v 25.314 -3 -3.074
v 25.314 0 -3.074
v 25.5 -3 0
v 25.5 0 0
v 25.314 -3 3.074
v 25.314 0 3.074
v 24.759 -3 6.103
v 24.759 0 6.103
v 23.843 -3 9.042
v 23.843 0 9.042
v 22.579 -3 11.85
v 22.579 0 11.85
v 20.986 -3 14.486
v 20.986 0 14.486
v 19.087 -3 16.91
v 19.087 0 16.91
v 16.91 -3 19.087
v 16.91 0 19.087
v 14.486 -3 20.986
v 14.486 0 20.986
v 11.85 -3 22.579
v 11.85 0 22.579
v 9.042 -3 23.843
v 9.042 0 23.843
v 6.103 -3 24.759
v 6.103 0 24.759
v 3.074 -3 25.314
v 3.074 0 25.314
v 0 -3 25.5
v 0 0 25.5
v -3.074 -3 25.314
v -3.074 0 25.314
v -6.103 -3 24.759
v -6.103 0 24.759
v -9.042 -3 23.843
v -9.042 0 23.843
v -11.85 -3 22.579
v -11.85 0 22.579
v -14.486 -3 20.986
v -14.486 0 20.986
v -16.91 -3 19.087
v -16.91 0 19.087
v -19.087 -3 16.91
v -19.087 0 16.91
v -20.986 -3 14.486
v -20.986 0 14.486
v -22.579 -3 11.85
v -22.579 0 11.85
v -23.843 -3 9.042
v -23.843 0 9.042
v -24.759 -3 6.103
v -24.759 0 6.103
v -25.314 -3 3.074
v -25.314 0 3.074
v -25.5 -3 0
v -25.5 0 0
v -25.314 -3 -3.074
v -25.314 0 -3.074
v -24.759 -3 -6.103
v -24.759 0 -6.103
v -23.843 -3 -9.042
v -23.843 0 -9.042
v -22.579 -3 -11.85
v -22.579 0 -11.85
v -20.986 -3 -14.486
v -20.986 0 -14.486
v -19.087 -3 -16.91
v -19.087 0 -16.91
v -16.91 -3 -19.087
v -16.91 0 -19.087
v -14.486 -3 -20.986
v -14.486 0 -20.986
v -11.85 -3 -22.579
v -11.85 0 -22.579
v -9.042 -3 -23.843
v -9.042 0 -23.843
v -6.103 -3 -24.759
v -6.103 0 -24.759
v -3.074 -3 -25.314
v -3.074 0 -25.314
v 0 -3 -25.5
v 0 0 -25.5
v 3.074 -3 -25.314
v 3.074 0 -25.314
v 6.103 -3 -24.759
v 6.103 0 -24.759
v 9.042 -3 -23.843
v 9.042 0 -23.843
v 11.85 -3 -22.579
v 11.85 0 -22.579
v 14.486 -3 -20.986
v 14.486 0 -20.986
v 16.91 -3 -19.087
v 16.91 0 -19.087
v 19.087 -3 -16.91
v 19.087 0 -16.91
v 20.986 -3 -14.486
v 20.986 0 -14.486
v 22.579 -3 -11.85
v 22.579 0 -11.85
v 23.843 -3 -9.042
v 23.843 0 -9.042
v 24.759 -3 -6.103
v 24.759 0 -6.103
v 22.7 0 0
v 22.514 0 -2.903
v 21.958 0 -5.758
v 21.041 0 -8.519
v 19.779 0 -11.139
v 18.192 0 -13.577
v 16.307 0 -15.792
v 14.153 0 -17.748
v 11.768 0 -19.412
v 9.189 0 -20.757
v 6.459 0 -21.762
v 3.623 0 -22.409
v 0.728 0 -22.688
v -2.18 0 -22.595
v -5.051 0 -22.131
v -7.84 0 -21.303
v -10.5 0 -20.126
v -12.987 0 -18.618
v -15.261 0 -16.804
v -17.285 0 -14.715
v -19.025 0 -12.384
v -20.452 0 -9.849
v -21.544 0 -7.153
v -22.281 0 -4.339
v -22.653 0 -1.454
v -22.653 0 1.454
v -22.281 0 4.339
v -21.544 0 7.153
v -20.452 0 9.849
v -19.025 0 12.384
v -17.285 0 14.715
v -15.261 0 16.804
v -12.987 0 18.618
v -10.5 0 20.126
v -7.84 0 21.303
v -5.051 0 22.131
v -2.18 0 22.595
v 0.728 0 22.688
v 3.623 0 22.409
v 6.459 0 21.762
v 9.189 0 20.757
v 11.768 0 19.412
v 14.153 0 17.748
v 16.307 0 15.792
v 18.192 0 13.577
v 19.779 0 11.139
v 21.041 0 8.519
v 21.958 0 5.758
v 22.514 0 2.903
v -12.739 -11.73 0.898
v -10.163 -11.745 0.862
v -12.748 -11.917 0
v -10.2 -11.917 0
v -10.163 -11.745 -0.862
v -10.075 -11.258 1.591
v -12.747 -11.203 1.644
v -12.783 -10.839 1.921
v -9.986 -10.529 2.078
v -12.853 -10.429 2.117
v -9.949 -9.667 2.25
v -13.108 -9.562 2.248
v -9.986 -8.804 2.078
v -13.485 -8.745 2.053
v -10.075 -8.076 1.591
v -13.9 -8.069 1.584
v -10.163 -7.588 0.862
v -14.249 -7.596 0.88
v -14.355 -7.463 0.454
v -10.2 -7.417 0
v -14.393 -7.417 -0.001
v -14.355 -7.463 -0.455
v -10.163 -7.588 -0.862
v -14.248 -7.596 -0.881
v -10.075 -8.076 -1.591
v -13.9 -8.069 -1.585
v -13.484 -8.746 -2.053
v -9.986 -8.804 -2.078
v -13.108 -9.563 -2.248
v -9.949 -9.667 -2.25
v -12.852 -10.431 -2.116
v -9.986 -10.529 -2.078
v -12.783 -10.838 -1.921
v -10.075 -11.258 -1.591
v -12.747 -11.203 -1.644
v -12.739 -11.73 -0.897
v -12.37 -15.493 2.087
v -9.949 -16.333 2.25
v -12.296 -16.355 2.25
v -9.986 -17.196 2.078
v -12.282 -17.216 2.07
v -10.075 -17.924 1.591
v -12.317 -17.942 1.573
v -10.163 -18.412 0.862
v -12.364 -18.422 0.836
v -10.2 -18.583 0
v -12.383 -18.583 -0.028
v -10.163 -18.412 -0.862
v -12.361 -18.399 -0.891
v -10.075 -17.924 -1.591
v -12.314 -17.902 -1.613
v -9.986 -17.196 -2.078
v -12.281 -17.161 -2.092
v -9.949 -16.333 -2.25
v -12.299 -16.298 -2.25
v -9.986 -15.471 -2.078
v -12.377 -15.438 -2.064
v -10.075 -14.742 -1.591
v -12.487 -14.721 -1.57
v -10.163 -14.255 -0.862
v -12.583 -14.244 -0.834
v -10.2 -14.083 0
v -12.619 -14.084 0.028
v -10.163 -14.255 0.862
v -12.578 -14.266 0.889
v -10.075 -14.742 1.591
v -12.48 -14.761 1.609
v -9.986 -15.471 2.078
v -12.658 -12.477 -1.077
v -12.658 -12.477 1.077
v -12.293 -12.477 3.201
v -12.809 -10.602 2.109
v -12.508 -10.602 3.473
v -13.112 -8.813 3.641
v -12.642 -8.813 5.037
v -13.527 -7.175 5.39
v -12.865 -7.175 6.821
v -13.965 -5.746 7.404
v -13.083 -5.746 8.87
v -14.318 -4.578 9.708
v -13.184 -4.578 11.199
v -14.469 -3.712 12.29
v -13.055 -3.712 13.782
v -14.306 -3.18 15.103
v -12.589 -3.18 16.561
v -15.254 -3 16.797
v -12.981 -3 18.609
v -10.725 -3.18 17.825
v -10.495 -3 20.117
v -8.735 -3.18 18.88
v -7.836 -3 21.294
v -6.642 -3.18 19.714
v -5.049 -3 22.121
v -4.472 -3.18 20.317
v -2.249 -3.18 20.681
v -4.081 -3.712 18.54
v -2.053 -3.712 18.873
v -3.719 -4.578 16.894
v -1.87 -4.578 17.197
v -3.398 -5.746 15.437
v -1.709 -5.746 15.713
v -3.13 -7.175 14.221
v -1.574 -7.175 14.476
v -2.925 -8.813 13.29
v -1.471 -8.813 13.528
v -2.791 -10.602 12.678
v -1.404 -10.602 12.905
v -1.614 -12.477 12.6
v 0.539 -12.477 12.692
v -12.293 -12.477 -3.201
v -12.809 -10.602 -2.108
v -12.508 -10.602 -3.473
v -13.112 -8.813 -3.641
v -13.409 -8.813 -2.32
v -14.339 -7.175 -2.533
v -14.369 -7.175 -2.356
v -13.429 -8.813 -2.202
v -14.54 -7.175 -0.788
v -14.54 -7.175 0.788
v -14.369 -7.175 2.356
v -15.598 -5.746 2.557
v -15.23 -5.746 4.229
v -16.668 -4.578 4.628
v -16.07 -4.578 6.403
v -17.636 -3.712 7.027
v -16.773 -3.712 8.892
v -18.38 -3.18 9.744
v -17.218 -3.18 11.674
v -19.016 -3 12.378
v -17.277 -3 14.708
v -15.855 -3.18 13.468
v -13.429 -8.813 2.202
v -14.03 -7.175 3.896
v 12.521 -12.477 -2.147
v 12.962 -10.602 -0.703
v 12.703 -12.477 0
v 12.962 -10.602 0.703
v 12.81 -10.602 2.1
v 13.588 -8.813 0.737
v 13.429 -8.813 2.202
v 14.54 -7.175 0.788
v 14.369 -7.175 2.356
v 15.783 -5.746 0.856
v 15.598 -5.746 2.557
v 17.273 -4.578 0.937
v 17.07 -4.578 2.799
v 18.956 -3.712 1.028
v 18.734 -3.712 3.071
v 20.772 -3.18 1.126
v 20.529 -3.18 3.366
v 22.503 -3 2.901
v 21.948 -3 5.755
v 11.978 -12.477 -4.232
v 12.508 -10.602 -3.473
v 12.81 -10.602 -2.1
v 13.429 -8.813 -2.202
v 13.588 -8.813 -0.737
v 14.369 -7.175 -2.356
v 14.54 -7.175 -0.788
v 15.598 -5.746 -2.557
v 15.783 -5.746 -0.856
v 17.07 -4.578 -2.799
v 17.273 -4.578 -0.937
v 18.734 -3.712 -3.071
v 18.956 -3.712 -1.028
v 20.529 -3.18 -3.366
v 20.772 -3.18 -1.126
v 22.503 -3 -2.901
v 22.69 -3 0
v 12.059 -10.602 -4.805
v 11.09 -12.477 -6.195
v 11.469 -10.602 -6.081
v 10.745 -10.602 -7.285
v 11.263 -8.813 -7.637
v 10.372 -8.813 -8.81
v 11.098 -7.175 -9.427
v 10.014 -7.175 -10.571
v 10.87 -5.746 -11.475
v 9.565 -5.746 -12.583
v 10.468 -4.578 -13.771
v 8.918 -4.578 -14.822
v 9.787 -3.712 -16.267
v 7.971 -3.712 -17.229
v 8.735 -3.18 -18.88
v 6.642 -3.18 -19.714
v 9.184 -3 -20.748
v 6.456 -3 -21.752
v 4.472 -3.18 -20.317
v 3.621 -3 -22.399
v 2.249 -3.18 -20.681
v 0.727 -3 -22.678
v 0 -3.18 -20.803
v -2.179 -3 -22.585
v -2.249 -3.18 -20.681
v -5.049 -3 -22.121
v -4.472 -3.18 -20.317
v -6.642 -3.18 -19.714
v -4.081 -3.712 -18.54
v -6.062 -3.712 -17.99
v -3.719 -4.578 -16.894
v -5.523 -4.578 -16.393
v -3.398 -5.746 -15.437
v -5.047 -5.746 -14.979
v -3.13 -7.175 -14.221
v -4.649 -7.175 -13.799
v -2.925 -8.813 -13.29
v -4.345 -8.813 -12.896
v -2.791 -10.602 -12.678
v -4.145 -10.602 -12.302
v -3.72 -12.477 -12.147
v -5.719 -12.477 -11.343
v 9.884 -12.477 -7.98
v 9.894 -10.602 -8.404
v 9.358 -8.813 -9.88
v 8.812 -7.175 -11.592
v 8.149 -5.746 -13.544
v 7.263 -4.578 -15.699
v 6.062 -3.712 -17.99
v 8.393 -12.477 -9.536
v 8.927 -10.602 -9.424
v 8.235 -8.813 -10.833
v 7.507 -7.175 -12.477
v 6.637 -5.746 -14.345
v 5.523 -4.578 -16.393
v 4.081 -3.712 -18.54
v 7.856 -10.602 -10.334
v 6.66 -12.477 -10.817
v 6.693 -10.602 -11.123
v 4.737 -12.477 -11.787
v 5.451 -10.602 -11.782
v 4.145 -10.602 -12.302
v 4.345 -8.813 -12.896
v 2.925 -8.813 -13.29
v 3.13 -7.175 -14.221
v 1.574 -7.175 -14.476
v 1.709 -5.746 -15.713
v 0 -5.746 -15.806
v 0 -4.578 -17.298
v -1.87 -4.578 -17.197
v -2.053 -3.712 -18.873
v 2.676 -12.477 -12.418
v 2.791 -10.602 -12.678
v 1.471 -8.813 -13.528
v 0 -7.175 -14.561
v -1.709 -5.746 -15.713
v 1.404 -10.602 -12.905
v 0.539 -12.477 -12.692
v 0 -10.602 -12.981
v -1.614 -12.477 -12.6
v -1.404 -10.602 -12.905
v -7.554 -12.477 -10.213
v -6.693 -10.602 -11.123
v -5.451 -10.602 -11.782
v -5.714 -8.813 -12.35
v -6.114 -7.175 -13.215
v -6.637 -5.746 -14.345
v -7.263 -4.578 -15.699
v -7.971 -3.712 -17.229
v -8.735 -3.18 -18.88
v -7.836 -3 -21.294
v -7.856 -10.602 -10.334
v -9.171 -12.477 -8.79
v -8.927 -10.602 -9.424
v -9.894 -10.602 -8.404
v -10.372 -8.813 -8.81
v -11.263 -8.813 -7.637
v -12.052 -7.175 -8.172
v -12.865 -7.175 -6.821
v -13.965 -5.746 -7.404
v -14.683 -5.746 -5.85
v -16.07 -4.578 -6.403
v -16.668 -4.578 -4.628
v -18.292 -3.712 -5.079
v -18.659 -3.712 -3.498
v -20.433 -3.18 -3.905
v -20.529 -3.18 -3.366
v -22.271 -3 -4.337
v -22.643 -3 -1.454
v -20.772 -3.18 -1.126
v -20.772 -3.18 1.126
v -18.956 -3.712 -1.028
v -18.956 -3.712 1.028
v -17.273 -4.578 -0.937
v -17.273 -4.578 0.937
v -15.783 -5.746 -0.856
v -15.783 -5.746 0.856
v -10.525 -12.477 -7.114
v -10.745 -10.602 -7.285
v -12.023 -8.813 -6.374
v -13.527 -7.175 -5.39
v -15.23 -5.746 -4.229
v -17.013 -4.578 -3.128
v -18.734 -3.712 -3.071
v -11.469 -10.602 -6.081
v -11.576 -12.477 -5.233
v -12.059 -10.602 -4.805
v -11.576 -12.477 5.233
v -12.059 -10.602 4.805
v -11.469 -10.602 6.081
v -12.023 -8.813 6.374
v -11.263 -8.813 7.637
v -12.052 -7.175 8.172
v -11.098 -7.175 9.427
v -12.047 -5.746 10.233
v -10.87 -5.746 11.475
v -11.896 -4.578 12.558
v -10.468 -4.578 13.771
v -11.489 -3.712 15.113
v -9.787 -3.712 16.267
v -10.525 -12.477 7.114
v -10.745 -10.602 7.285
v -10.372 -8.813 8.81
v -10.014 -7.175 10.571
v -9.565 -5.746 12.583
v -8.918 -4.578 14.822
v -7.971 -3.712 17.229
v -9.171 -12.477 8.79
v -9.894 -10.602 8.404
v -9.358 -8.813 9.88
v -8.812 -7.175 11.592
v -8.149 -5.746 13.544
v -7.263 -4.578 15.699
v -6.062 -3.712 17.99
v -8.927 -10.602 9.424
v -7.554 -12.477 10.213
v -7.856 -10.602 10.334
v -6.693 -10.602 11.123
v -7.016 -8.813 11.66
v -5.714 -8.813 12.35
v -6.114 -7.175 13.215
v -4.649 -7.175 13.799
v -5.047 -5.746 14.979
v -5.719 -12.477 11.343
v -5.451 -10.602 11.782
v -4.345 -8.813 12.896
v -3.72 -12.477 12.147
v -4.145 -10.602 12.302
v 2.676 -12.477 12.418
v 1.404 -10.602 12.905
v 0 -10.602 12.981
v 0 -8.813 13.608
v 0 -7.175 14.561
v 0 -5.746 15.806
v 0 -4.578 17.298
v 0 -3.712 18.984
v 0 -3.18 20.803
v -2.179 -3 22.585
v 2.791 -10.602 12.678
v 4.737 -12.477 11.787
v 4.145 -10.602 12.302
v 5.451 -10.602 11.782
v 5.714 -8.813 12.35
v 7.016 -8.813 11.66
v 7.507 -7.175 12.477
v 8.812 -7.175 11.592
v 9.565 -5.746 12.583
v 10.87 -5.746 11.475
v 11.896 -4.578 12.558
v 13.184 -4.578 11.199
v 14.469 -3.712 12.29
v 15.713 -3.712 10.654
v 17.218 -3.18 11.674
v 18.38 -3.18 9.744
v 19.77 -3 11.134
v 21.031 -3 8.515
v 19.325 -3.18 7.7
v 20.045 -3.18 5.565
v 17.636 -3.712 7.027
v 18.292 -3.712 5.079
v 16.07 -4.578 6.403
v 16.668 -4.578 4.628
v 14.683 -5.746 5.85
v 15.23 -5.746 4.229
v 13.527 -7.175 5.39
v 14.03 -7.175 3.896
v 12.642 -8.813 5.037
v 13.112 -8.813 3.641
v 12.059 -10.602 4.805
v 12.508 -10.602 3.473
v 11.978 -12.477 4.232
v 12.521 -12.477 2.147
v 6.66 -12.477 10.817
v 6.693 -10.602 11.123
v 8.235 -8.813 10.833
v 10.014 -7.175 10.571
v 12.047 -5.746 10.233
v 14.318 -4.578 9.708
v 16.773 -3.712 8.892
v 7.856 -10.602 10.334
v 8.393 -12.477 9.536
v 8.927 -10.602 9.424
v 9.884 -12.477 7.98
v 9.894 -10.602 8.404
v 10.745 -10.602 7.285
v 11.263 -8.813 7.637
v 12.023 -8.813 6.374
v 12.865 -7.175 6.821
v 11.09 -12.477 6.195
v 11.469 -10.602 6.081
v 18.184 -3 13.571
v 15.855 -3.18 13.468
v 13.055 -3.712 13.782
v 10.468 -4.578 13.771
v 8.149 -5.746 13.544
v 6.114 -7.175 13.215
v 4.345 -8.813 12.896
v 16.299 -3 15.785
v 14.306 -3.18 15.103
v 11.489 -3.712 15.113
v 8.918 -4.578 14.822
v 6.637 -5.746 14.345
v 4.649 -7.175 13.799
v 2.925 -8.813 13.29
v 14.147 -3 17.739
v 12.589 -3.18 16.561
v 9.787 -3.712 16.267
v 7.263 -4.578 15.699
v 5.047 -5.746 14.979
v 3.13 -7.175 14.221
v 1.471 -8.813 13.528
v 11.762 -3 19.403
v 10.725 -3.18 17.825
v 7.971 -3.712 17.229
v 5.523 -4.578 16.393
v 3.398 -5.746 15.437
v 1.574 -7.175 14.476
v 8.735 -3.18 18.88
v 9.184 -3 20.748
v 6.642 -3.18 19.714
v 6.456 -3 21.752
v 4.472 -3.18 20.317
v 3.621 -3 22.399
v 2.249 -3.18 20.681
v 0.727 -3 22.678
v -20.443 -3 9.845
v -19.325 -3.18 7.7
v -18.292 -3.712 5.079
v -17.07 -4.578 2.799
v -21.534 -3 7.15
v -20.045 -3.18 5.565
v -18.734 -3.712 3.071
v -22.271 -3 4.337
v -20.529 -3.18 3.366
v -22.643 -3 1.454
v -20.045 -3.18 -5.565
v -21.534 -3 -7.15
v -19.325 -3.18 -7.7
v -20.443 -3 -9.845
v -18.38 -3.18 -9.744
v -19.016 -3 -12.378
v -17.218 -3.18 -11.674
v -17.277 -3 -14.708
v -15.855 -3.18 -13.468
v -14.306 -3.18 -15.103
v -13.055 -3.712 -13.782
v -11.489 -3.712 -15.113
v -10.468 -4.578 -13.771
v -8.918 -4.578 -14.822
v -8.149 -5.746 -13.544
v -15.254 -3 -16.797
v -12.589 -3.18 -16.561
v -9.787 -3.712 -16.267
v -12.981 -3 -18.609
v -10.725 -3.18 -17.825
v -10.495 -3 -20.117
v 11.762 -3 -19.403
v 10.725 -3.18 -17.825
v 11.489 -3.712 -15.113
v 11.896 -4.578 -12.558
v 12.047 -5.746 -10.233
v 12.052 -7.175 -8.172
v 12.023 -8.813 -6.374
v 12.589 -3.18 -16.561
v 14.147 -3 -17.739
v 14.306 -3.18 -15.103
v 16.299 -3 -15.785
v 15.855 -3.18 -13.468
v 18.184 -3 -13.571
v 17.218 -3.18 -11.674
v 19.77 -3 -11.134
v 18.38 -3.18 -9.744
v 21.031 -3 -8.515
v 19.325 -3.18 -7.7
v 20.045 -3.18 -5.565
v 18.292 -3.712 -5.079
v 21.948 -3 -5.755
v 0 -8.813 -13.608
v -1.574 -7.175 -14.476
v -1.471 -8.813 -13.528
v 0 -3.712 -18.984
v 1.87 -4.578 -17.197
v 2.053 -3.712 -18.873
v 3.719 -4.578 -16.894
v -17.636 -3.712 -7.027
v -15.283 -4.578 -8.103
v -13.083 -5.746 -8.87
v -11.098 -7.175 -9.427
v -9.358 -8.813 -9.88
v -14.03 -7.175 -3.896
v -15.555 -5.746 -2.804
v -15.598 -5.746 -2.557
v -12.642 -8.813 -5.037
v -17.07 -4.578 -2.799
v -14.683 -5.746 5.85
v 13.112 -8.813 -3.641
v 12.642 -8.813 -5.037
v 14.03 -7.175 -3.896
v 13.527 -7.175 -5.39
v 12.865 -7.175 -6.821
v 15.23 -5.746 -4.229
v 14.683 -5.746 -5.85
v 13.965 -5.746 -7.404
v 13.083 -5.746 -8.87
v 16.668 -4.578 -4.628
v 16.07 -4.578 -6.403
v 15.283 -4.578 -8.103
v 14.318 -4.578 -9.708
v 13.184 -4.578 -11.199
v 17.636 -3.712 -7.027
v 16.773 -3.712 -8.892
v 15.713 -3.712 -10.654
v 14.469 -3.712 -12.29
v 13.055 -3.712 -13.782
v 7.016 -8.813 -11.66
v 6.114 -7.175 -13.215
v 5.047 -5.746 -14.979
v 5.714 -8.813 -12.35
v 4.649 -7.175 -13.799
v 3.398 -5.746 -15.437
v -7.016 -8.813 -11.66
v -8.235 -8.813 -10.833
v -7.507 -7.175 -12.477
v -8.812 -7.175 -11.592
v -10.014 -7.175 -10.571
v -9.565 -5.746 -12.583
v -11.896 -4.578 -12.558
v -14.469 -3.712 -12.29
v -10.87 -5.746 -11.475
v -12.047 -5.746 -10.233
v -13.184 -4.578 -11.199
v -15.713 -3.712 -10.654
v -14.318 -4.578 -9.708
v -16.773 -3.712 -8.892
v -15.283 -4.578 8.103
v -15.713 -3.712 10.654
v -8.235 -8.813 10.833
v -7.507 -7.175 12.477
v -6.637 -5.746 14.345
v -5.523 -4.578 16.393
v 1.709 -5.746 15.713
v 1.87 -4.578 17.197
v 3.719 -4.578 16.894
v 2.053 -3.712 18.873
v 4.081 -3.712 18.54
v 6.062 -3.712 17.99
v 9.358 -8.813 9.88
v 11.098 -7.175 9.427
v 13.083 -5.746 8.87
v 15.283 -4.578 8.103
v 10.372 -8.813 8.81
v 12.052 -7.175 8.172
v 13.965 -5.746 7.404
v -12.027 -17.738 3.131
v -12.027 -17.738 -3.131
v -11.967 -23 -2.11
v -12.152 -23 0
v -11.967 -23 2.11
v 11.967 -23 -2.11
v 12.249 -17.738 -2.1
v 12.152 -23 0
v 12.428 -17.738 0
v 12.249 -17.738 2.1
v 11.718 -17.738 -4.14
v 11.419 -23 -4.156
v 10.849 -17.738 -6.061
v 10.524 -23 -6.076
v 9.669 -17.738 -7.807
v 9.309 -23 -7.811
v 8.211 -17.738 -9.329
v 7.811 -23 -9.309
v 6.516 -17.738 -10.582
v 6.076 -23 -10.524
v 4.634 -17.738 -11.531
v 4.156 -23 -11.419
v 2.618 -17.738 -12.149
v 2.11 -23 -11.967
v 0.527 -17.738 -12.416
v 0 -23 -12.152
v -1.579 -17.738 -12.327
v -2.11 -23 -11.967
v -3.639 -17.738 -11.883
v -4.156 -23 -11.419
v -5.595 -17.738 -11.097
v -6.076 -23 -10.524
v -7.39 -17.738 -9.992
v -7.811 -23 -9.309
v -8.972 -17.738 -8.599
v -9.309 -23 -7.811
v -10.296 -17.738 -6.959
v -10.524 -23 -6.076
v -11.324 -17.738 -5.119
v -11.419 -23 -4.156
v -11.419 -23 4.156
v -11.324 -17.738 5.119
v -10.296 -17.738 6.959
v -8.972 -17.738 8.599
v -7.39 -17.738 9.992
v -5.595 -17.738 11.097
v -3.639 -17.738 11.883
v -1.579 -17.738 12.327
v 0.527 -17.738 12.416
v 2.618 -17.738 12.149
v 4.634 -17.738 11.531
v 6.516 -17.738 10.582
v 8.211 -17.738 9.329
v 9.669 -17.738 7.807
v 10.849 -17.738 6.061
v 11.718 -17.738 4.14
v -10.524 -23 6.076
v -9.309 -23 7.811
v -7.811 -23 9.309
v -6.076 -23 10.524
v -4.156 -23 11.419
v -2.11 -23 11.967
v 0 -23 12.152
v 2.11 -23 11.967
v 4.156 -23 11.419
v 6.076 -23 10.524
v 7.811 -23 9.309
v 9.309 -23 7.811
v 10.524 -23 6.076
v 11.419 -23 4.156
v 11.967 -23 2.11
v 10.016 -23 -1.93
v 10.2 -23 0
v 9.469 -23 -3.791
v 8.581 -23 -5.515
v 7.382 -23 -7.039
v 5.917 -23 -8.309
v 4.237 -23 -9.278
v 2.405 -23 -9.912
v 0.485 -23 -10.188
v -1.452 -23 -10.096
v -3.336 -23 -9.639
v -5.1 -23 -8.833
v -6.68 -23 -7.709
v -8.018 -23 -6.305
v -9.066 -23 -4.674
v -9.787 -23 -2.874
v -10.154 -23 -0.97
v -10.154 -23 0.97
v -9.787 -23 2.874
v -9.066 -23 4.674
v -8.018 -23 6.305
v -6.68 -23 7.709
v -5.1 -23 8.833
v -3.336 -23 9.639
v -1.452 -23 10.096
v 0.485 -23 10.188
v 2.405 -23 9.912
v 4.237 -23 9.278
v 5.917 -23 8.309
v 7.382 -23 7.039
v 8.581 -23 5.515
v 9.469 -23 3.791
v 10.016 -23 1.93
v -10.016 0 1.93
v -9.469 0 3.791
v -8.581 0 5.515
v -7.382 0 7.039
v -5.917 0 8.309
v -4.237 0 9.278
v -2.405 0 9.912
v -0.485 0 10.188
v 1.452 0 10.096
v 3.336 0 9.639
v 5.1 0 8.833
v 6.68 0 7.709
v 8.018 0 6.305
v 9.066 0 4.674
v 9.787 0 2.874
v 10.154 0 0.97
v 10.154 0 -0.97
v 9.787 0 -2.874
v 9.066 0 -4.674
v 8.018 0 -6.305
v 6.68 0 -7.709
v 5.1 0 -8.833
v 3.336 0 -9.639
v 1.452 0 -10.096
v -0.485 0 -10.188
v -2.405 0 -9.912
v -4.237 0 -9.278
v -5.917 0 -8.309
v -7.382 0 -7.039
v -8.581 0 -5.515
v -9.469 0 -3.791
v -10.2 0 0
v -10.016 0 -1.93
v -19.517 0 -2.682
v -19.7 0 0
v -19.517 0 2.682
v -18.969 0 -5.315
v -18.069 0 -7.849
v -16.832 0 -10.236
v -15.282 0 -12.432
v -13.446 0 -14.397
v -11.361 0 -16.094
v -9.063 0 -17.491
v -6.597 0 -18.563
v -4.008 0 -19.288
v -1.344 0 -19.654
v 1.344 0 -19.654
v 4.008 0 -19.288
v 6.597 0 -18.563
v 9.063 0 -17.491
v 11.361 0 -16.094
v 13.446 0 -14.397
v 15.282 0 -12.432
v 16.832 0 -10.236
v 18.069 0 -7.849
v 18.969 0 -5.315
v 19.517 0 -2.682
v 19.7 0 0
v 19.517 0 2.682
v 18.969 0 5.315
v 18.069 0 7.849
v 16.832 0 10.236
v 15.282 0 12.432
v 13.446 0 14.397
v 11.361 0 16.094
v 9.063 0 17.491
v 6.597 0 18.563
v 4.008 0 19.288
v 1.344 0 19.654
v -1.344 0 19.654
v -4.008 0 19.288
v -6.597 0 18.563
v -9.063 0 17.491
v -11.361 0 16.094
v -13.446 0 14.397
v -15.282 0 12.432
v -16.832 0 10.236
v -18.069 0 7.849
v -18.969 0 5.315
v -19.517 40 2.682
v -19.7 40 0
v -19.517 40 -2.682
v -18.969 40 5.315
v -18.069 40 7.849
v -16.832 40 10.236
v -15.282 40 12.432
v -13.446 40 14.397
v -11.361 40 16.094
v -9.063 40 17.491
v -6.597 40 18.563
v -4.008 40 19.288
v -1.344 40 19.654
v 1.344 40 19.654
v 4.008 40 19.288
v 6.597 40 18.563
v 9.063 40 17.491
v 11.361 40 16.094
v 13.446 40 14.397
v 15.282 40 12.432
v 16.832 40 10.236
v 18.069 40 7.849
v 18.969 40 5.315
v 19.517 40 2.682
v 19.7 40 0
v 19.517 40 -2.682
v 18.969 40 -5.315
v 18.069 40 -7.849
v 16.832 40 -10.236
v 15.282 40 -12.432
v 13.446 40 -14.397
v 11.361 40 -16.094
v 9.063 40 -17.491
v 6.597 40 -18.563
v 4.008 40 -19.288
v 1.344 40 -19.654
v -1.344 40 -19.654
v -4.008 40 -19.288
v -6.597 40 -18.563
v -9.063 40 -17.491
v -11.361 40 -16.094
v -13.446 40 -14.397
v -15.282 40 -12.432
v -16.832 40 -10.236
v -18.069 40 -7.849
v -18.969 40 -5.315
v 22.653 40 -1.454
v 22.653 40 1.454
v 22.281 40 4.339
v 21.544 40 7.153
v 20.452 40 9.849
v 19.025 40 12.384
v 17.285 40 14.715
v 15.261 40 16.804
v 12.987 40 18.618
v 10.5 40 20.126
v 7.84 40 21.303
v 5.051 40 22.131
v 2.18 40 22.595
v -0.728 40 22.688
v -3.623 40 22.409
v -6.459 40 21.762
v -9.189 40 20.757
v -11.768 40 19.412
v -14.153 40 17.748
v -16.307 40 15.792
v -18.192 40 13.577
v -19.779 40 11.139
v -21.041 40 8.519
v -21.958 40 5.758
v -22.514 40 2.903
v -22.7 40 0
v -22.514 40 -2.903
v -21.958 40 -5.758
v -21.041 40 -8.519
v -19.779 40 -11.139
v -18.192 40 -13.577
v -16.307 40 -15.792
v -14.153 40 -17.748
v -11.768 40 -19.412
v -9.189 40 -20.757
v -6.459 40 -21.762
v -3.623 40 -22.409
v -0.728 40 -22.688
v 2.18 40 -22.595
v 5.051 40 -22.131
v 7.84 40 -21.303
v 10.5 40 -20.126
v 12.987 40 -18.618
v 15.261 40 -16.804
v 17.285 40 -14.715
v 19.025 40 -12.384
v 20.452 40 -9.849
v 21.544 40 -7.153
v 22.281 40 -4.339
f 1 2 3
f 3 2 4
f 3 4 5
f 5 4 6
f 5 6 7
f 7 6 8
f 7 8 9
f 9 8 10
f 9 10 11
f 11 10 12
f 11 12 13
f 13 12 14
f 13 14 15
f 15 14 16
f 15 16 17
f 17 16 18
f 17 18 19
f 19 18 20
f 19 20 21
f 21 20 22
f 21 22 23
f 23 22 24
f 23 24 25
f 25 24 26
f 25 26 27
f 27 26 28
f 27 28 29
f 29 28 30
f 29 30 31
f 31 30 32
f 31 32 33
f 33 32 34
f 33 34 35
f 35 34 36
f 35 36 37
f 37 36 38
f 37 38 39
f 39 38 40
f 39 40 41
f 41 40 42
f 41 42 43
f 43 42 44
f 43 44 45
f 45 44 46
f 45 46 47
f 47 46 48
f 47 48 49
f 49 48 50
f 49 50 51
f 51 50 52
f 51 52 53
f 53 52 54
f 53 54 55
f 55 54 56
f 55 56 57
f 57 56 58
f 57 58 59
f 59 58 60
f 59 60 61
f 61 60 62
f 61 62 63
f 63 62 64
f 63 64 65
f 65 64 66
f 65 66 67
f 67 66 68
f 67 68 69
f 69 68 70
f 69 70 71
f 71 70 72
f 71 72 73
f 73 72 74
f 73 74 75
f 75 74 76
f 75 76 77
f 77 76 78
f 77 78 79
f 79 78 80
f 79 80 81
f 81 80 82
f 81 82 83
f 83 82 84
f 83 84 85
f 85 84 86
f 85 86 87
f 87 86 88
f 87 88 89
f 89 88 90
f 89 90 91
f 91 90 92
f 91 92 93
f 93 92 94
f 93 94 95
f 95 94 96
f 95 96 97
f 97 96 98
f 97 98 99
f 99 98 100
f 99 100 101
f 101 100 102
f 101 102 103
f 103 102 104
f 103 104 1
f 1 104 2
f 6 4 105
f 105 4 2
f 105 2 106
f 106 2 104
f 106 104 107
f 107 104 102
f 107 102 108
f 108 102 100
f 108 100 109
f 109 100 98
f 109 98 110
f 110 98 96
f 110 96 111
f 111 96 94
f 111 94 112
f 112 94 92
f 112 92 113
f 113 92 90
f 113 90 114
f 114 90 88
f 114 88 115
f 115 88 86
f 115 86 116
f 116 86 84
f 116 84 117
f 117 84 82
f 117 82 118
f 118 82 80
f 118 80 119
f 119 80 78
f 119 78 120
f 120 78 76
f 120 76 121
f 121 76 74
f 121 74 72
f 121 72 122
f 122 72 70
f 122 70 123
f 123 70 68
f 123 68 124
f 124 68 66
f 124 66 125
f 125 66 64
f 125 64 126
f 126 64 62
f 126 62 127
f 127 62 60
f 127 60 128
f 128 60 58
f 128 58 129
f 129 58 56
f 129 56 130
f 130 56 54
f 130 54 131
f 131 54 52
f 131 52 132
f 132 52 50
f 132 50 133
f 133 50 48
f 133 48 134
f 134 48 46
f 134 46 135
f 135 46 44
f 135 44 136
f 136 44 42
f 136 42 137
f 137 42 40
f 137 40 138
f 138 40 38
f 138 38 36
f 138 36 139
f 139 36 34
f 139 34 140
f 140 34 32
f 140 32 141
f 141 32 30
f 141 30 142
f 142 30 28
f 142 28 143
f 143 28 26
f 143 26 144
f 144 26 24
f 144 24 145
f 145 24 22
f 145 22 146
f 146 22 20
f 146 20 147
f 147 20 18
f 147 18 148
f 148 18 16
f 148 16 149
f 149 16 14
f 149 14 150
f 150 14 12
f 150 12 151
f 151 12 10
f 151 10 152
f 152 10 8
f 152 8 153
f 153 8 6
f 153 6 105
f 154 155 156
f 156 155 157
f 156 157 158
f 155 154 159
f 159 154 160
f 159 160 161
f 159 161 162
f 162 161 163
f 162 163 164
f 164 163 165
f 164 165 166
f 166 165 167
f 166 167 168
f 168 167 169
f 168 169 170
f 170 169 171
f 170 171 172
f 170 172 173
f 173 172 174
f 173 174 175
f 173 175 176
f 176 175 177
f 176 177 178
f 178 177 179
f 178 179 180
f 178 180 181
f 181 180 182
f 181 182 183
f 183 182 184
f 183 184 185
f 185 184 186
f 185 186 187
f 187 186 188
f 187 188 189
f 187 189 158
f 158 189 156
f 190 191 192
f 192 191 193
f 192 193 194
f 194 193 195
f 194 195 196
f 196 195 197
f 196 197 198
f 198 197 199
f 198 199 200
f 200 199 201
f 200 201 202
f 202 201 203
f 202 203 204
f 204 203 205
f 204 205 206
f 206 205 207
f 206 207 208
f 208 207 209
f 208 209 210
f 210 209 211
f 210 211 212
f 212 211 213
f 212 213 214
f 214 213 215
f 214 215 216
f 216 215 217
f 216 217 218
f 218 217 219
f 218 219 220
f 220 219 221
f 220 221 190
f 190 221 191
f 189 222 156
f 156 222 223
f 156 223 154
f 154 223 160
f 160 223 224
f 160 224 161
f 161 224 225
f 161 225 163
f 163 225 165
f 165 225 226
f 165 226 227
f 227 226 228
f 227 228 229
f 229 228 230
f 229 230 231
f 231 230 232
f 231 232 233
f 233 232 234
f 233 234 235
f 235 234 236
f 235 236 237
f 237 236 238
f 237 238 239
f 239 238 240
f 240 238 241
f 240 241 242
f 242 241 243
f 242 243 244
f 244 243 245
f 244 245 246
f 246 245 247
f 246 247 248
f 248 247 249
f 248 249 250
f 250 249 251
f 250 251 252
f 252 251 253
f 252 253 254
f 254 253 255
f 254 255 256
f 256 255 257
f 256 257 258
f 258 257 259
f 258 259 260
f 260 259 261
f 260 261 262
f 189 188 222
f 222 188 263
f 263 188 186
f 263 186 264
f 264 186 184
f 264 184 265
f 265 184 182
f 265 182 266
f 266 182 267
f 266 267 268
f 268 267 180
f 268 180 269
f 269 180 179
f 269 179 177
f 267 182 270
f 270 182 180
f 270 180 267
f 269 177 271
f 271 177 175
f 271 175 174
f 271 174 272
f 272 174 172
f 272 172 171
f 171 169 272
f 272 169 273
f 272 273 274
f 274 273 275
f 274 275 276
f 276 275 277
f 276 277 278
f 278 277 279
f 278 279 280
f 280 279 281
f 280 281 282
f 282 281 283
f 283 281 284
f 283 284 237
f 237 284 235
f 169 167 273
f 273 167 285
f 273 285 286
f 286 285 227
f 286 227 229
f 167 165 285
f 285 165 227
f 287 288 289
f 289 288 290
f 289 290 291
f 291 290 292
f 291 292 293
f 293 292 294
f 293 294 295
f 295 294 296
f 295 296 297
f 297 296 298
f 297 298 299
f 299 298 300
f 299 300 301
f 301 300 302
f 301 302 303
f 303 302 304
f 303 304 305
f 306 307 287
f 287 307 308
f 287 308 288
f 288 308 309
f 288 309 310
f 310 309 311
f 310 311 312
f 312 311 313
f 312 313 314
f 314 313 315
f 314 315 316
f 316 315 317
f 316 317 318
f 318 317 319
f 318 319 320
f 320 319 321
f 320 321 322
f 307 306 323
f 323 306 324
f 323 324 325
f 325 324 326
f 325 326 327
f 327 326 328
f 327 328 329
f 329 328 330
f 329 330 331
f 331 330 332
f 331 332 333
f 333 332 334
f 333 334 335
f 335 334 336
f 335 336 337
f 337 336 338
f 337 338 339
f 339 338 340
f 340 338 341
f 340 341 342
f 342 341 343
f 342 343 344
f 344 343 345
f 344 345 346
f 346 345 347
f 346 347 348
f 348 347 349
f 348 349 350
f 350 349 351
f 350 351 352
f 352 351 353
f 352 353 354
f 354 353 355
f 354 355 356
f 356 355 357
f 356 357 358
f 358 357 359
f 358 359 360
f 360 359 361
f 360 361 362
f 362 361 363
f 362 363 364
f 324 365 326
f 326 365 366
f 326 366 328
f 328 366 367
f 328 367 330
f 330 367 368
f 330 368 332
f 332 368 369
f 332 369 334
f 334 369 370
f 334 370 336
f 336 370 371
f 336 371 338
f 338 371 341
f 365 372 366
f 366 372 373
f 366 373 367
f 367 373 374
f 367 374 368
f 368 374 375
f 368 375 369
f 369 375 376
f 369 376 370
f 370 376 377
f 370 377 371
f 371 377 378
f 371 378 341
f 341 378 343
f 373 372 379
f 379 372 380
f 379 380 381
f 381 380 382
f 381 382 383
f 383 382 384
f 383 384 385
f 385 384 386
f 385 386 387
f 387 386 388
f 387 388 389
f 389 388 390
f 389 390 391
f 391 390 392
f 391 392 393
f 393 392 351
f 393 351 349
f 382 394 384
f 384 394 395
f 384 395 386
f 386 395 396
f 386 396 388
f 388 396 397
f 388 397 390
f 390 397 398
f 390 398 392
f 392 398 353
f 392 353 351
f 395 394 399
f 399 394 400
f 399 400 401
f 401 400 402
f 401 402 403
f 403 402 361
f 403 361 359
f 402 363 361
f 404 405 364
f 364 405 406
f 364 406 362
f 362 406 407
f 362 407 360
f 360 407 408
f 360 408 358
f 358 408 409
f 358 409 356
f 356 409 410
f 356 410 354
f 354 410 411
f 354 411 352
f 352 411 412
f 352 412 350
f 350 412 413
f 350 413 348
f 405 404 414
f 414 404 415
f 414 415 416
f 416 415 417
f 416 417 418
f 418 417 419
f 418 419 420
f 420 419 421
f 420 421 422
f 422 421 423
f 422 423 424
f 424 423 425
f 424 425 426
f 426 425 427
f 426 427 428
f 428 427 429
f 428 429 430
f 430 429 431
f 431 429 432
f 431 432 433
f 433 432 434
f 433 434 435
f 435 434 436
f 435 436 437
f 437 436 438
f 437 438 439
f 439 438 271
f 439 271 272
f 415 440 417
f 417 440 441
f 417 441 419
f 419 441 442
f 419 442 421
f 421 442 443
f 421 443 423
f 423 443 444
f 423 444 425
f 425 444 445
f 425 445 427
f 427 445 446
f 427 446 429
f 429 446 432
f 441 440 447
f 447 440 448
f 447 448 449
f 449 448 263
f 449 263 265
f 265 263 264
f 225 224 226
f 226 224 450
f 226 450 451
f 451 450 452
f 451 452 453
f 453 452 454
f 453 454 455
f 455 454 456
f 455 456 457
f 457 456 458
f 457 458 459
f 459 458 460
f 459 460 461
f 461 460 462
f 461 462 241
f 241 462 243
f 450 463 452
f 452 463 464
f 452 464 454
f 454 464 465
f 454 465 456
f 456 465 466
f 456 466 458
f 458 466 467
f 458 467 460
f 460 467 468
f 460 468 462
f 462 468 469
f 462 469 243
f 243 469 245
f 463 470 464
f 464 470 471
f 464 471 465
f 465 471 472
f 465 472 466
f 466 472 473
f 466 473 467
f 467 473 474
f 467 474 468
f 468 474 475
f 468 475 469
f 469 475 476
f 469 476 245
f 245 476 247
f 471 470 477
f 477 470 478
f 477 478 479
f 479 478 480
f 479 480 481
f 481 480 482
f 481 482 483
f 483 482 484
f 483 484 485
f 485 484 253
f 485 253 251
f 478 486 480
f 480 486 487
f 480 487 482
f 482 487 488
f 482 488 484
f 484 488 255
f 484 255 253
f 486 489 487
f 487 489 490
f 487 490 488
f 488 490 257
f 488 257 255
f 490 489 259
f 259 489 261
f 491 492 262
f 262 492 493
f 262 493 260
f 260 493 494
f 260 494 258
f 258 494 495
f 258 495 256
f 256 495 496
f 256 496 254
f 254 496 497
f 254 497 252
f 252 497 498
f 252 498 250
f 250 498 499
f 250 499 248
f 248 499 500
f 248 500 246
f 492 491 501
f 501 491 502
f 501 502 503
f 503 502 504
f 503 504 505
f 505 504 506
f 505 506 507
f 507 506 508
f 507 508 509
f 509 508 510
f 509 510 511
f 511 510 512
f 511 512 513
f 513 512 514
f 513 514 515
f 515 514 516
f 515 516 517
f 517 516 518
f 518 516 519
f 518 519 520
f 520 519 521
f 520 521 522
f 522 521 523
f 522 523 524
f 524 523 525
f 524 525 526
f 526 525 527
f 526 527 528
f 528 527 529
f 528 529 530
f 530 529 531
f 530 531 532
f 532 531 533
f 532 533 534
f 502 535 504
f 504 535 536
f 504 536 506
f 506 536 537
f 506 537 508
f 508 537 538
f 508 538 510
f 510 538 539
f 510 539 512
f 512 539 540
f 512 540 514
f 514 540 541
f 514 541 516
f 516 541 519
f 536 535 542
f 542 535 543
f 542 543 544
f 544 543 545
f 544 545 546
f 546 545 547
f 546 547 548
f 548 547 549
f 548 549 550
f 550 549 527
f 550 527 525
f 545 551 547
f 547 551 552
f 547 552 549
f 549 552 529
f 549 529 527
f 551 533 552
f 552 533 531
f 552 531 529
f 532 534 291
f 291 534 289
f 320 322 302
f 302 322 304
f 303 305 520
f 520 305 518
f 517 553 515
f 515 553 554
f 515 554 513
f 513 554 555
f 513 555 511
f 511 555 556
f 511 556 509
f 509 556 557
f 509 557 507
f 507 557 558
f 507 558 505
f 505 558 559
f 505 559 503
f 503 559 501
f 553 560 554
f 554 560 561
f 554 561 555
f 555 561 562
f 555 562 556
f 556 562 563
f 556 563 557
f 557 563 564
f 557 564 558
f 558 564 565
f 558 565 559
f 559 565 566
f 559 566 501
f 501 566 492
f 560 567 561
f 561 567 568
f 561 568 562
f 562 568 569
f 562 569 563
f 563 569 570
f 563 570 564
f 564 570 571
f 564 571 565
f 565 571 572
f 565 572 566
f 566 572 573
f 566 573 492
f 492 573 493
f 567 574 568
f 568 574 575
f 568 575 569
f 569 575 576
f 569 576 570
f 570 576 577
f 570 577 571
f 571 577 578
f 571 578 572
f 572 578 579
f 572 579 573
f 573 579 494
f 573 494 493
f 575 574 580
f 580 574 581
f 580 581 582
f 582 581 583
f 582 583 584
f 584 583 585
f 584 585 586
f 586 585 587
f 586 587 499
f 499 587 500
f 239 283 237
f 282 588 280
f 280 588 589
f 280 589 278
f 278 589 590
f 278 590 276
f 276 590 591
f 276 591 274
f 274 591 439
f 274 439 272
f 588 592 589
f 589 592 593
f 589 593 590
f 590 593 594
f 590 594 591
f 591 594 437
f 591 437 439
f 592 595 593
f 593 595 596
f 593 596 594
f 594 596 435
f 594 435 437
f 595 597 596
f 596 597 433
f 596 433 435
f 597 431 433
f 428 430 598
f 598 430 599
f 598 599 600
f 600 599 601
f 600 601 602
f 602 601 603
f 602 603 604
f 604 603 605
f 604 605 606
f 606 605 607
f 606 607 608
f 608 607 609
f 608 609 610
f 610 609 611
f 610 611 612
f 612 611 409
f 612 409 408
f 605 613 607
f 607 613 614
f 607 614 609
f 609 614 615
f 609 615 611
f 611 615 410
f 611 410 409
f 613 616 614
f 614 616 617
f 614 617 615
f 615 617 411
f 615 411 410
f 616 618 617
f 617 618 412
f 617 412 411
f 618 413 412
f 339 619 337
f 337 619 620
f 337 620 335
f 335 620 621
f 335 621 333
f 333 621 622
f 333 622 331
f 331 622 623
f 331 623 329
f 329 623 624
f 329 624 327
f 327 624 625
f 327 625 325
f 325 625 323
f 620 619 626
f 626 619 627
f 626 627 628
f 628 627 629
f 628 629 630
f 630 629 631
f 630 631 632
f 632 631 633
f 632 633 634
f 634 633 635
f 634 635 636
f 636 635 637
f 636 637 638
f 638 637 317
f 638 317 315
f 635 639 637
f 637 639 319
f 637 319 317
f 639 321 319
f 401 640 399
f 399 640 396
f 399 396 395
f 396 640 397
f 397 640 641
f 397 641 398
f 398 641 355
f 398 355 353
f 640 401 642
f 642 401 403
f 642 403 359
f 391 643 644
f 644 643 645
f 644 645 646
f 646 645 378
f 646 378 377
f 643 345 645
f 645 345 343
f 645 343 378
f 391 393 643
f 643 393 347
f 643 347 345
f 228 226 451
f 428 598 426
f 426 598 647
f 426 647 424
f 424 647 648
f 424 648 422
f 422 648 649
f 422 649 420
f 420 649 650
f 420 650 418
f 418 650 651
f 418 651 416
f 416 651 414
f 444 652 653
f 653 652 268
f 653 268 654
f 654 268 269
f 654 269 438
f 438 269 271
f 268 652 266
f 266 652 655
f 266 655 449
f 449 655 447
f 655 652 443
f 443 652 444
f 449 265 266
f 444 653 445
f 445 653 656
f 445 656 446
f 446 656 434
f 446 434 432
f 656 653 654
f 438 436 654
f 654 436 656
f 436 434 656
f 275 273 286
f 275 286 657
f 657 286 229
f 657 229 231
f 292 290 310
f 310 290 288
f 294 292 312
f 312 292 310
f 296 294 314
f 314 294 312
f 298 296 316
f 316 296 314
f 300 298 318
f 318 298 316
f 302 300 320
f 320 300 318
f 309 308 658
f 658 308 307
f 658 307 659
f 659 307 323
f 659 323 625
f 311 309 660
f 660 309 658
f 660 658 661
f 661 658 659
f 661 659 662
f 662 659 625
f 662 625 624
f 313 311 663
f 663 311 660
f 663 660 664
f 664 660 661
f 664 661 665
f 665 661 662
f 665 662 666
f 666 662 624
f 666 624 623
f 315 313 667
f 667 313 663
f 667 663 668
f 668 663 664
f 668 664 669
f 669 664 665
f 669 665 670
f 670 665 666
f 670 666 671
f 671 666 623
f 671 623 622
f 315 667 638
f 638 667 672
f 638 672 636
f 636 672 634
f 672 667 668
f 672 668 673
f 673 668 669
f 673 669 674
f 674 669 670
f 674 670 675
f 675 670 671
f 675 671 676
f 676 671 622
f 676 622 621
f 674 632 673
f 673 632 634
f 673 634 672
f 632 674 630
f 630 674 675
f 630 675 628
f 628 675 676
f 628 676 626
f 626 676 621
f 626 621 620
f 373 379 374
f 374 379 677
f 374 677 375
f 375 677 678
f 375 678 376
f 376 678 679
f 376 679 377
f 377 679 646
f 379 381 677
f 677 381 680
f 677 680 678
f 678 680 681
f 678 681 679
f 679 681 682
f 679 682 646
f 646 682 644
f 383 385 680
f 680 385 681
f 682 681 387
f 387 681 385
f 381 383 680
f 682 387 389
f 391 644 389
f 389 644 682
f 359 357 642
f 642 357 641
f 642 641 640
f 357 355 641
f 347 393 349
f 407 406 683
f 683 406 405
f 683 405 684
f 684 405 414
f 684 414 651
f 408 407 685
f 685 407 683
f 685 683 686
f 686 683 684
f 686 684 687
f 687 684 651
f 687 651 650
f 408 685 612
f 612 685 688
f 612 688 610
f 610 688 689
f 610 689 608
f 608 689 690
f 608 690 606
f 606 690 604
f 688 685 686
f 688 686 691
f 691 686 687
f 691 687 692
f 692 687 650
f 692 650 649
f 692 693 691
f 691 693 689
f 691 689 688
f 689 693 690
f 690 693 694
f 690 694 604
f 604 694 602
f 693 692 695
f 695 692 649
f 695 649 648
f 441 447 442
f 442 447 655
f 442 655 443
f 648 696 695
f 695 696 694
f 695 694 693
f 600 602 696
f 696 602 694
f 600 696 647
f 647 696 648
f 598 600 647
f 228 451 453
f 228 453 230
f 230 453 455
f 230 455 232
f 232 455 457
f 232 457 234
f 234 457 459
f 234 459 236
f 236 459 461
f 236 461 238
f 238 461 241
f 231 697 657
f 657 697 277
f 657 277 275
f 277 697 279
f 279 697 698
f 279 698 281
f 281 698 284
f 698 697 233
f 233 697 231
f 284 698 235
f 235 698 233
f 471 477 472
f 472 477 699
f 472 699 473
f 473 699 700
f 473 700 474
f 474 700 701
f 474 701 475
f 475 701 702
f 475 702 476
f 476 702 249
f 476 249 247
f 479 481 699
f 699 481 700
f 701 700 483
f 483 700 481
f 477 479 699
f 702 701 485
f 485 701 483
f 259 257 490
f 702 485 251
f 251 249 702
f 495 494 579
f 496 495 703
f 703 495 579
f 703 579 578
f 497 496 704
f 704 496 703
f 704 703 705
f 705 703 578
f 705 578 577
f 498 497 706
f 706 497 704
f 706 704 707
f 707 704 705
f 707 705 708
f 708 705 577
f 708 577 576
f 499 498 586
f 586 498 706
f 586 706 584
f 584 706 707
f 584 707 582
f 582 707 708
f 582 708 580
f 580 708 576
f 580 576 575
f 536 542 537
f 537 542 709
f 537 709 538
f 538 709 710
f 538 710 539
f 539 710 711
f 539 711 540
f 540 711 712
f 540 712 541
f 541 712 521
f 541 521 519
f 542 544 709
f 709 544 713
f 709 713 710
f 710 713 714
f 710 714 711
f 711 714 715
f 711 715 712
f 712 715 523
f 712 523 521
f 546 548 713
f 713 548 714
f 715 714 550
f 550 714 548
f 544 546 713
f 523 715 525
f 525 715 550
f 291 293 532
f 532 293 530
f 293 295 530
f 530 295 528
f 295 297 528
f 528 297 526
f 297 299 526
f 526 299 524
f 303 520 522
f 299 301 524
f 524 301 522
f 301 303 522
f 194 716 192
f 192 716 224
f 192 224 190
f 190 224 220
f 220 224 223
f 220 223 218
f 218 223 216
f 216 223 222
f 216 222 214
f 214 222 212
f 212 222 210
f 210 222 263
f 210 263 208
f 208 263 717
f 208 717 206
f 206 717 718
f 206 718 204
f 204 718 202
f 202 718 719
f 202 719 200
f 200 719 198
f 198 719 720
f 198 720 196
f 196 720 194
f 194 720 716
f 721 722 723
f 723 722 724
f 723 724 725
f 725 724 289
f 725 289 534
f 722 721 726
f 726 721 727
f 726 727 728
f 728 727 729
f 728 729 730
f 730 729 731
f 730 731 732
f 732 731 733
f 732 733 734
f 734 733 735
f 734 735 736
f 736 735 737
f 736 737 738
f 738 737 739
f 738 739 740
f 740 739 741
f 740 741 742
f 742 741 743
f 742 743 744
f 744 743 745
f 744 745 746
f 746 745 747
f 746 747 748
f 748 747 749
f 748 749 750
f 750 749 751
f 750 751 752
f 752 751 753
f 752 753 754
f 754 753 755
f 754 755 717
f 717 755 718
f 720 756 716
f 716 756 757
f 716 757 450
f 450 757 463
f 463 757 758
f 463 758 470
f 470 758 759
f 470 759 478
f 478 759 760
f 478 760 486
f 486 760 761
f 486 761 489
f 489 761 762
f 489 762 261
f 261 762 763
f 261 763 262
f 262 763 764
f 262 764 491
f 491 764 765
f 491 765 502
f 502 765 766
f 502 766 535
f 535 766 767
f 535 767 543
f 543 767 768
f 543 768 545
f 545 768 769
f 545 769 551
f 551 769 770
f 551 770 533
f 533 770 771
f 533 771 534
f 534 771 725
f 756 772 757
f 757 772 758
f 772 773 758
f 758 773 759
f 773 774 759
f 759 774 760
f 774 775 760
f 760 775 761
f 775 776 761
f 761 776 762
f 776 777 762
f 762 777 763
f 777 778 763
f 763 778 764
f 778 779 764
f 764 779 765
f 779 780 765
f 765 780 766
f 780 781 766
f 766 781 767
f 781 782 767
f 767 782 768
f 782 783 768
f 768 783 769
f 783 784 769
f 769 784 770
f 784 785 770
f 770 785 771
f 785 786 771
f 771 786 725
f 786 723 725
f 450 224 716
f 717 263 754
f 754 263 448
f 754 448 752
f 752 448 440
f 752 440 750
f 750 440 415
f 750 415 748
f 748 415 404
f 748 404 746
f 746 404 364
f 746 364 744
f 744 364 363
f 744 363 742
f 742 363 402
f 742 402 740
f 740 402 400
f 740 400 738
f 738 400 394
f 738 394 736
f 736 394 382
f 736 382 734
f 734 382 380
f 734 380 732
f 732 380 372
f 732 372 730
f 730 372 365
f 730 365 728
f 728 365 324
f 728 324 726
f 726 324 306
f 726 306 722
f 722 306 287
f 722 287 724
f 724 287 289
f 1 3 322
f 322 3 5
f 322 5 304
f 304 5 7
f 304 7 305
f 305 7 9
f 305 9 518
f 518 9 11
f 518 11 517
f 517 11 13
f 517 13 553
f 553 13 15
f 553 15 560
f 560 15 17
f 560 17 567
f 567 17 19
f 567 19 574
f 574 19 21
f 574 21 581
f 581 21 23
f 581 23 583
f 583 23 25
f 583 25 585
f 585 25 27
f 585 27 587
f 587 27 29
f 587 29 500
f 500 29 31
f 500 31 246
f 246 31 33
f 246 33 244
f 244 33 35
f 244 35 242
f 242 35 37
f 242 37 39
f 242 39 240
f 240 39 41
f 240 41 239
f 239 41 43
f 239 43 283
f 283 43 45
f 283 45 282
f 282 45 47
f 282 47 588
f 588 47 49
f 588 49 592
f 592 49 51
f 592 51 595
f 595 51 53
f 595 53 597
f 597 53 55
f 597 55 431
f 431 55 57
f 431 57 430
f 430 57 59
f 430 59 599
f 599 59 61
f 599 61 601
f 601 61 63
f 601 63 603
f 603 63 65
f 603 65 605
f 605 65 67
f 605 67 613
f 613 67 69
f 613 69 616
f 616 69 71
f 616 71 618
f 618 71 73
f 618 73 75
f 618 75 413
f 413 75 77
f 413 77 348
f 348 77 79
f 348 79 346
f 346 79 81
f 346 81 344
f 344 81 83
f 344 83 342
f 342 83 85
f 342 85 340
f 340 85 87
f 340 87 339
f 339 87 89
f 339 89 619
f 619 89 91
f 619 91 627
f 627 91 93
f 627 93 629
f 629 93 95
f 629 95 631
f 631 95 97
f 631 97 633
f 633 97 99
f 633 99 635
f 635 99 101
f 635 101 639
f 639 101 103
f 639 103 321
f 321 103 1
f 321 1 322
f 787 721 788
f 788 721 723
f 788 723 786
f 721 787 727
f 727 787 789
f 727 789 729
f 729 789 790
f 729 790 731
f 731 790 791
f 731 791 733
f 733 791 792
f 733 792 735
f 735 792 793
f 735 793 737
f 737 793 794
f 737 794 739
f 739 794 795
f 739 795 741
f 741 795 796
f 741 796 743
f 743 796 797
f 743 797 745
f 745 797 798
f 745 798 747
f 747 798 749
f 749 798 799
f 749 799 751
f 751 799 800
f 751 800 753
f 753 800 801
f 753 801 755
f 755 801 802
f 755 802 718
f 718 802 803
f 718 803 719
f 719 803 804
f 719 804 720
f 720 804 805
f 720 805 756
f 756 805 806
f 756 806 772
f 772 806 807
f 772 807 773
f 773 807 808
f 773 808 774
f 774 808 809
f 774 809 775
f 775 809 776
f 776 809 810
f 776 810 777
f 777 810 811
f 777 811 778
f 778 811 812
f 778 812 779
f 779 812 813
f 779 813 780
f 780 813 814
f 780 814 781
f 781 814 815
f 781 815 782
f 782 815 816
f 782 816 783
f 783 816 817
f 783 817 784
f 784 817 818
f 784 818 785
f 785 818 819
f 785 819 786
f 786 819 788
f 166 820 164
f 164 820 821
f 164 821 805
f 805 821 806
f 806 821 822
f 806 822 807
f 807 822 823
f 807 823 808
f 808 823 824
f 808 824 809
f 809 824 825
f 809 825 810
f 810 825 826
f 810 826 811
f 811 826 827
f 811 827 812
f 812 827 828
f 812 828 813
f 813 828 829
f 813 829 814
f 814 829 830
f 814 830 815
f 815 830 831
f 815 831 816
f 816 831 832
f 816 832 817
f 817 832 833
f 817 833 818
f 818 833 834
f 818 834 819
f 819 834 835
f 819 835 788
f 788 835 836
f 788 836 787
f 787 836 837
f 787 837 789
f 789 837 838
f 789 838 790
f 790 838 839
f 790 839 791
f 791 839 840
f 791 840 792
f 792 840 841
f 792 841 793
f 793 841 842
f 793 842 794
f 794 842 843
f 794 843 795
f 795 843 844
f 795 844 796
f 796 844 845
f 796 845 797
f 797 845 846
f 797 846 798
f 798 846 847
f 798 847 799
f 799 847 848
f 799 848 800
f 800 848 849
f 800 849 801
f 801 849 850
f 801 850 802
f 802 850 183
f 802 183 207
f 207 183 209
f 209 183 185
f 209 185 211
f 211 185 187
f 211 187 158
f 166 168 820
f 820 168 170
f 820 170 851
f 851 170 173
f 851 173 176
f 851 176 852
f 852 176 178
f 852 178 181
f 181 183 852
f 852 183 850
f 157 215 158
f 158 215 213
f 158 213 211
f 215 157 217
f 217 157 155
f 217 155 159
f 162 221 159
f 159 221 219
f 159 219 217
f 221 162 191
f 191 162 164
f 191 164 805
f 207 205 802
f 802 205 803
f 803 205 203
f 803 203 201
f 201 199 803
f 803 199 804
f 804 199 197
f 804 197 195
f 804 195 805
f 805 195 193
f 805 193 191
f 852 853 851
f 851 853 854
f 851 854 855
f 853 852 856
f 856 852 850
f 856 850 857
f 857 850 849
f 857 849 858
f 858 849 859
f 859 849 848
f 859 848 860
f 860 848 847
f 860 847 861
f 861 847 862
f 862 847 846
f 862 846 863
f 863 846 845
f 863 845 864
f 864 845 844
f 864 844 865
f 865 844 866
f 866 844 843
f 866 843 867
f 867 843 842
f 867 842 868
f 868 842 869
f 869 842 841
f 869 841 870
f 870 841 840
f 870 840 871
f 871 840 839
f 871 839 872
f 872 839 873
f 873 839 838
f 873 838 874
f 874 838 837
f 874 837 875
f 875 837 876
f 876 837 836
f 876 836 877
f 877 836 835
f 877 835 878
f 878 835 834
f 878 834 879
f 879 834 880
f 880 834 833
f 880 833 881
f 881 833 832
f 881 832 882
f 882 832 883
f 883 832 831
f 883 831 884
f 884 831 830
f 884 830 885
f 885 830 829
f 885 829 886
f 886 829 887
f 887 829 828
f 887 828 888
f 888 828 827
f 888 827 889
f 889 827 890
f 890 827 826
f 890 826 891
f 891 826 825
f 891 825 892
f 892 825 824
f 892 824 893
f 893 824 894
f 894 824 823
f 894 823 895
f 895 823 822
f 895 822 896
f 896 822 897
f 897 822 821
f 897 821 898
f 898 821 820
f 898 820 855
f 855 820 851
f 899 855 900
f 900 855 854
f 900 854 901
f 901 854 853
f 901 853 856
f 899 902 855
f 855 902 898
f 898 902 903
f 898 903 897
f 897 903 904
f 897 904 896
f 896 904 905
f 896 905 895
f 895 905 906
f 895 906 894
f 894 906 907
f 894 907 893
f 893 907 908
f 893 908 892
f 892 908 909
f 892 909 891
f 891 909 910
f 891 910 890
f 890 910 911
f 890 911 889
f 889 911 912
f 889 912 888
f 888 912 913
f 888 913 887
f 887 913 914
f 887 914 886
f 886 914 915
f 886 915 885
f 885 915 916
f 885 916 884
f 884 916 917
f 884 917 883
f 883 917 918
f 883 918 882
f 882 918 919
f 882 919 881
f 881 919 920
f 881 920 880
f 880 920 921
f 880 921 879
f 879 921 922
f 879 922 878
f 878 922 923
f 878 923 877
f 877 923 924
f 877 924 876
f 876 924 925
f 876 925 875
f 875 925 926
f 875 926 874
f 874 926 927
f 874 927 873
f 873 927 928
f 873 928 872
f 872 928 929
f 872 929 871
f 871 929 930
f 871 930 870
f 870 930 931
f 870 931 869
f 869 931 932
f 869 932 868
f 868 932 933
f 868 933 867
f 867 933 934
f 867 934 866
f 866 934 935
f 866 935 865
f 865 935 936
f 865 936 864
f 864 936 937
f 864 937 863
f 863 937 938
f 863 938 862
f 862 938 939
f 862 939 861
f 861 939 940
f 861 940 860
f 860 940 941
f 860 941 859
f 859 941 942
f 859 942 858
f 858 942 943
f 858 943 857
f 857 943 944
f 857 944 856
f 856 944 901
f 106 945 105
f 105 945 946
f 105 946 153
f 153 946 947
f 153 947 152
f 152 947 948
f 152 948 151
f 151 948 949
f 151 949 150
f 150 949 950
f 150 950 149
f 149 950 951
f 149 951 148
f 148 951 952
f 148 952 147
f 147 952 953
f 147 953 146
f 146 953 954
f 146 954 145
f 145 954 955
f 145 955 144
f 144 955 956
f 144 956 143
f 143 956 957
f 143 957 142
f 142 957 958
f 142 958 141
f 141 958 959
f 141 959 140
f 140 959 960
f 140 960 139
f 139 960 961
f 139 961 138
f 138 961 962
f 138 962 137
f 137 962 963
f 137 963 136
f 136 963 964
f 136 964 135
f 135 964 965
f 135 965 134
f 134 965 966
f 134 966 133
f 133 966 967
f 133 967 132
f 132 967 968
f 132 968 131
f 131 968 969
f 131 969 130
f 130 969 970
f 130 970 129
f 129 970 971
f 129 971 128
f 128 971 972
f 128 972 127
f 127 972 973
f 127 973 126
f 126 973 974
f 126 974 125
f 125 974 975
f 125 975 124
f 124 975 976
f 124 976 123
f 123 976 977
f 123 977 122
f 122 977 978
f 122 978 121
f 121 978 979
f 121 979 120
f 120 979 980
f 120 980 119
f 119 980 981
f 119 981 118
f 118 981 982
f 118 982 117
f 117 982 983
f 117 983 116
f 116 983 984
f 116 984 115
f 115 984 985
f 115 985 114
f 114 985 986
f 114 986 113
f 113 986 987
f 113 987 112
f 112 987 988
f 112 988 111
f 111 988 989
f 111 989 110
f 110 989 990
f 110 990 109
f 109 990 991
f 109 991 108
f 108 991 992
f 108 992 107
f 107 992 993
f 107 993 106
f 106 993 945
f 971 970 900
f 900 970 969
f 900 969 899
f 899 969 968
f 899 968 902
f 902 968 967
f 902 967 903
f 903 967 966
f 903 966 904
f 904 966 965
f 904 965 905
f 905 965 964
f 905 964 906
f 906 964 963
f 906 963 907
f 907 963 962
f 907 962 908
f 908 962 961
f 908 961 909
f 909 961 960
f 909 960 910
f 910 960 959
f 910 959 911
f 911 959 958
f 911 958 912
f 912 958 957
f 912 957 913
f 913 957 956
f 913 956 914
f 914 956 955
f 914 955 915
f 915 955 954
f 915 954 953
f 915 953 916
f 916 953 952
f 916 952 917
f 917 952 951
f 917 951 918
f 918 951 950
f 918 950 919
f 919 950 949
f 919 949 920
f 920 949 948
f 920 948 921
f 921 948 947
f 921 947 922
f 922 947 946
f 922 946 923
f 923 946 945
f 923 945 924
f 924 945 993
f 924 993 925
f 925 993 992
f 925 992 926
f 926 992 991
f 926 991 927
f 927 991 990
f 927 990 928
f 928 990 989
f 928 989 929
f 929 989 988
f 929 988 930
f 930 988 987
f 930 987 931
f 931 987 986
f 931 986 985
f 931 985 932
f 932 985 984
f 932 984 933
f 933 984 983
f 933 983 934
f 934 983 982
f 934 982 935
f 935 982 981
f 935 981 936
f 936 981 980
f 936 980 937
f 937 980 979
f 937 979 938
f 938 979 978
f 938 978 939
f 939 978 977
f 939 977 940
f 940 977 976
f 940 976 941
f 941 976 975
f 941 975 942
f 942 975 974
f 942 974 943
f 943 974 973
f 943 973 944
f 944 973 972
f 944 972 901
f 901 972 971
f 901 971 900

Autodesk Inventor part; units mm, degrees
ref_plane "YZ Plane" through (0, 0, 0) normal (1, 0, 0) x (0, 1, 0)
ref_plane "XZ Plane" through (0, 0, 0) normal (0, 1, 0) x (-1, 0, 0)
ref_plane "XY Plane" through (0, 0, 0) normal (0, 0, 1) x (1, 0, 0)
sketch "Boceto1" plane through (0, 0, 0) normal (0, 1, 0) x (-1, 0, 0)
  circle A0 centre (0, 0) radius 19.7
  circle A1 centre (0, 0) radius 22.7
  dimension "d0" = 39.4
  dimension "d1" = 45.4
extrude "Extrusión1" add sketch "Boceto1" along normal blind 40
sketch "Boceto2" plane through (0, 0, 0) normal (0, -1, 0) x (1, 0, 0)
  circle A0 centre (0, 0) radius 22.7 projected
  circle A1 centre (0, 0) radius 19.7 projected
extrude "Extrusión2" add sketch "Boceto2" along normal blind 3 contours A0 | A1
sketch "Boceto3" plane through (0, -3, 0) normal (0, -1, 0) x (1, 0, 0)
  circle A0 centre (0, 0) radius 10.2
  circle A1 centre (0, 0) radius 13.2
  dimension "d6" = 20.4
  dimension "d7" = 26.4
extrude "Extrusión3" add sketch "Boceto3" along normal blind 20
chamfer "Chaflán1" distance 20 angle 3 1 edges at (-13.2, -23, 0) measured on face at (13.0291, -16.3333, -2.1174)
fillet "Empalme1" radius 10 2 edges at (-13.2, -3.0001, 0) (-13.2, -3, 0)
sketch "Boceto4" plane through (0, -3, 0) normal (0, -1, 0) x (1, 0, 0)
  circle A0 centre (0, 0) radius 10.2 projected
hole "Agujero1" at (0, -3, 0) direction (0, 1, 0) diameter 20.4 end through all
sketch "Boceto5" plane through (0, 0, 0) normal (1, 0, 0) x (0, 1, 0)
  line L0 (-23, -12.1518) -> (-23, 12.1518) projected
  line L1 (-12.4766, -12.7034) -> (-12.4766, 12.7034) projected
  line L2 (-12.4766, -12.7034) -> (-12.4766, 12.7034) projected
  line L3 (-3, 22.6896) -> (-3, -22.6896) projected
  line L4 (-23, -10.2) -> (-23, 10.2) projected
  line L5 (-23, 0) -> (-3, 0)
  line L6 (-3, 22.7) -> (-3, -22.7) projected
  line L7 (-23, 0) -> (-16.3333, 0)
  line L8 (-16.3333, 0) -> (-9.6667, 0)
  circle A0 centre (-16.3333, 0) radius 2.25
  circle A1 centre (-9.6667, 0) radius 2.25
  point P0 (0, 0)
  dimension "d21" = 6.6667
  dimension "d22" = 6.6667
  dimension "d23" = 4.5
  dimension "d24" = 4.5
hole "Agujero2" at (0, -16.3333, 0) at (0, -9.6667, 0) direction (-1, 0, 0) diameter 4.5 end through all
sketch "Boceto6" plane through (0, 0, 0) normal (0, 1, 0) x (1, 0, 0)
  circle A0 centre (0, 0) radius 25.5
  circle A1 centre (0, 0) radius 22.7 projected
  circle A2 centre (0, 0) radius 19.7 projected
  dimension "d32" = 51
extrude "Extrusión4" add sketch "Boceto6" against normal blind 3 contours A0
properties part number "SoporteBombilla"
